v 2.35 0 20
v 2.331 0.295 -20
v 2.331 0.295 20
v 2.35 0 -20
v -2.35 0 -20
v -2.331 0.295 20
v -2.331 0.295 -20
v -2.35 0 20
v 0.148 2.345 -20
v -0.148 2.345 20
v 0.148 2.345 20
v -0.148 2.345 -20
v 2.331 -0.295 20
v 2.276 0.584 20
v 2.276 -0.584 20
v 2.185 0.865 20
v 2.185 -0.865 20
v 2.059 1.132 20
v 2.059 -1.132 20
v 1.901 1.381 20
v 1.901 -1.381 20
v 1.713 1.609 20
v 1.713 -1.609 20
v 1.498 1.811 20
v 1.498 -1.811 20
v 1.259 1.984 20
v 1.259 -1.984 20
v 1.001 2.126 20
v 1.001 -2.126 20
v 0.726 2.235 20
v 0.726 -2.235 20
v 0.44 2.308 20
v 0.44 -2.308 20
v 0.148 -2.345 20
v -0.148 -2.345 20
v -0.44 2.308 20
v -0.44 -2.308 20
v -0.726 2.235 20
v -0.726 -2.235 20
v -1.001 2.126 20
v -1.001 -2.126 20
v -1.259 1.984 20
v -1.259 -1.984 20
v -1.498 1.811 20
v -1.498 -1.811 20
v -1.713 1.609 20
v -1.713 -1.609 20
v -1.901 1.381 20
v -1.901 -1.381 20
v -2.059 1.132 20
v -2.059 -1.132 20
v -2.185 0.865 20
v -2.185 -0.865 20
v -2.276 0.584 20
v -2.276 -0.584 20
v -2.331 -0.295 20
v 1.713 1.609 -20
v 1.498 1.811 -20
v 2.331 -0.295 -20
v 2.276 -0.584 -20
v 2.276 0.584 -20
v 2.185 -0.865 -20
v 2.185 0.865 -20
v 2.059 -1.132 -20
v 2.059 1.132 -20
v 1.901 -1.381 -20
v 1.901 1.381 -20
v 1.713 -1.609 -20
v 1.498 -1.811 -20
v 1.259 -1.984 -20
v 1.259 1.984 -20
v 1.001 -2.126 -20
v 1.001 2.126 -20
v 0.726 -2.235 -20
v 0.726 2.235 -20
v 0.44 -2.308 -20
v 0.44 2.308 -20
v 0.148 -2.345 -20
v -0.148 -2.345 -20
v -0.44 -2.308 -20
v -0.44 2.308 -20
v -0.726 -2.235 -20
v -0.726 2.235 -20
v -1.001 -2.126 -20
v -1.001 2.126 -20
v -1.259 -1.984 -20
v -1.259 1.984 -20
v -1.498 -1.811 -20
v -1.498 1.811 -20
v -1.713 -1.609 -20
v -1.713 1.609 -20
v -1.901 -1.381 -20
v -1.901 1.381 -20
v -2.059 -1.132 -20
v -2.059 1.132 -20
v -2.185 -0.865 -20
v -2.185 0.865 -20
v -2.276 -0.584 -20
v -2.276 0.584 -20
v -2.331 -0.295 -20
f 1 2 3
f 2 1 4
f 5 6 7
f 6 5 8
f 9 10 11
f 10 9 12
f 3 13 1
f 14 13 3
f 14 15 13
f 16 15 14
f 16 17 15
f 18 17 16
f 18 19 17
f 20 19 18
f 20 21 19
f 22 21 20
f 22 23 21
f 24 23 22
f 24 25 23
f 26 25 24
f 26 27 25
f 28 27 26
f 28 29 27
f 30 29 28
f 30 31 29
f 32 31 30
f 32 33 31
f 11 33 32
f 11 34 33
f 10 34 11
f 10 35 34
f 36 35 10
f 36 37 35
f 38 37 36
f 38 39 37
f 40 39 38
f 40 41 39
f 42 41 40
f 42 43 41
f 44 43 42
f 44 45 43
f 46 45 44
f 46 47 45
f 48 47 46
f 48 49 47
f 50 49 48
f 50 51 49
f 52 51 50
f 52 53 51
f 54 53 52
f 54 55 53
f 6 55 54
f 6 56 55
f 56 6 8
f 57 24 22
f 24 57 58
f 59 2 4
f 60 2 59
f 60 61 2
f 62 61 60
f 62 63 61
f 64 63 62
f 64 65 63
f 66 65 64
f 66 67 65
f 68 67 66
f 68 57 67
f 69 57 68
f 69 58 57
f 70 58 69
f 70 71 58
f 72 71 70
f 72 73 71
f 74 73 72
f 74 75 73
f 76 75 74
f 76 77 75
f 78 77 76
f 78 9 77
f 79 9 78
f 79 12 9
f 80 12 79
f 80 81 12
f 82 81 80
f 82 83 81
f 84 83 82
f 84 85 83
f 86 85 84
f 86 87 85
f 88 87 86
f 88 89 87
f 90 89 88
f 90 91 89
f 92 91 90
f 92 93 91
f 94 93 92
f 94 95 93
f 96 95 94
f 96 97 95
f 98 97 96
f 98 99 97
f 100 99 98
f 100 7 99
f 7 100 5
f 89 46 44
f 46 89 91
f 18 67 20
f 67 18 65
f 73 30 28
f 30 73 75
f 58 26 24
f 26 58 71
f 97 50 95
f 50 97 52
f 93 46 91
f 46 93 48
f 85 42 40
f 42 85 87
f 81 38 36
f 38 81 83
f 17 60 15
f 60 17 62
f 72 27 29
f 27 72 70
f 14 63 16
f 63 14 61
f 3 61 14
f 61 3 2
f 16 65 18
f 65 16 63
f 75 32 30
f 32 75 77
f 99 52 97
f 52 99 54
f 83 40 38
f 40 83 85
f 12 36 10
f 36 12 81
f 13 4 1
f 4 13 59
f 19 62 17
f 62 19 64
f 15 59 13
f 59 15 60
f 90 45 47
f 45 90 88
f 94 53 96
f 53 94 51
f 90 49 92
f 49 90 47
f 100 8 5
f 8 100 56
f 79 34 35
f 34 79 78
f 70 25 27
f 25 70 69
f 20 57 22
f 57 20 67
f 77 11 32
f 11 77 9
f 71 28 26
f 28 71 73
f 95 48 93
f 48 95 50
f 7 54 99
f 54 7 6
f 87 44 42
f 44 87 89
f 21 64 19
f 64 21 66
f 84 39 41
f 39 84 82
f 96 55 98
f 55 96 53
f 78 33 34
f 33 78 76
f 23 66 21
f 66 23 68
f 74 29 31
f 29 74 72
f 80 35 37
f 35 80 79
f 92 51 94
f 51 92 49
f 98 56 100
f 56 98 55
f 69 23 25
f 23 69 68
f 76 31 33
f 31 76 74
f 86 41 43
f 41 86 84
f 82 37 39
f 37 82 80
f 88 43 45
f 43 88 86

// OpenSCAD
$fn = 50;


difference() {
	union() {
		translate(v = [0, 0, -20.0000000000]) {
			cylinder(h = 40, r = 2.3500000000);
		}
	}
	union() {
		translate(v = [0, 0, -100.0000000000]) {
			cylinder(h = 200, r = 0);
		}
	}
}
